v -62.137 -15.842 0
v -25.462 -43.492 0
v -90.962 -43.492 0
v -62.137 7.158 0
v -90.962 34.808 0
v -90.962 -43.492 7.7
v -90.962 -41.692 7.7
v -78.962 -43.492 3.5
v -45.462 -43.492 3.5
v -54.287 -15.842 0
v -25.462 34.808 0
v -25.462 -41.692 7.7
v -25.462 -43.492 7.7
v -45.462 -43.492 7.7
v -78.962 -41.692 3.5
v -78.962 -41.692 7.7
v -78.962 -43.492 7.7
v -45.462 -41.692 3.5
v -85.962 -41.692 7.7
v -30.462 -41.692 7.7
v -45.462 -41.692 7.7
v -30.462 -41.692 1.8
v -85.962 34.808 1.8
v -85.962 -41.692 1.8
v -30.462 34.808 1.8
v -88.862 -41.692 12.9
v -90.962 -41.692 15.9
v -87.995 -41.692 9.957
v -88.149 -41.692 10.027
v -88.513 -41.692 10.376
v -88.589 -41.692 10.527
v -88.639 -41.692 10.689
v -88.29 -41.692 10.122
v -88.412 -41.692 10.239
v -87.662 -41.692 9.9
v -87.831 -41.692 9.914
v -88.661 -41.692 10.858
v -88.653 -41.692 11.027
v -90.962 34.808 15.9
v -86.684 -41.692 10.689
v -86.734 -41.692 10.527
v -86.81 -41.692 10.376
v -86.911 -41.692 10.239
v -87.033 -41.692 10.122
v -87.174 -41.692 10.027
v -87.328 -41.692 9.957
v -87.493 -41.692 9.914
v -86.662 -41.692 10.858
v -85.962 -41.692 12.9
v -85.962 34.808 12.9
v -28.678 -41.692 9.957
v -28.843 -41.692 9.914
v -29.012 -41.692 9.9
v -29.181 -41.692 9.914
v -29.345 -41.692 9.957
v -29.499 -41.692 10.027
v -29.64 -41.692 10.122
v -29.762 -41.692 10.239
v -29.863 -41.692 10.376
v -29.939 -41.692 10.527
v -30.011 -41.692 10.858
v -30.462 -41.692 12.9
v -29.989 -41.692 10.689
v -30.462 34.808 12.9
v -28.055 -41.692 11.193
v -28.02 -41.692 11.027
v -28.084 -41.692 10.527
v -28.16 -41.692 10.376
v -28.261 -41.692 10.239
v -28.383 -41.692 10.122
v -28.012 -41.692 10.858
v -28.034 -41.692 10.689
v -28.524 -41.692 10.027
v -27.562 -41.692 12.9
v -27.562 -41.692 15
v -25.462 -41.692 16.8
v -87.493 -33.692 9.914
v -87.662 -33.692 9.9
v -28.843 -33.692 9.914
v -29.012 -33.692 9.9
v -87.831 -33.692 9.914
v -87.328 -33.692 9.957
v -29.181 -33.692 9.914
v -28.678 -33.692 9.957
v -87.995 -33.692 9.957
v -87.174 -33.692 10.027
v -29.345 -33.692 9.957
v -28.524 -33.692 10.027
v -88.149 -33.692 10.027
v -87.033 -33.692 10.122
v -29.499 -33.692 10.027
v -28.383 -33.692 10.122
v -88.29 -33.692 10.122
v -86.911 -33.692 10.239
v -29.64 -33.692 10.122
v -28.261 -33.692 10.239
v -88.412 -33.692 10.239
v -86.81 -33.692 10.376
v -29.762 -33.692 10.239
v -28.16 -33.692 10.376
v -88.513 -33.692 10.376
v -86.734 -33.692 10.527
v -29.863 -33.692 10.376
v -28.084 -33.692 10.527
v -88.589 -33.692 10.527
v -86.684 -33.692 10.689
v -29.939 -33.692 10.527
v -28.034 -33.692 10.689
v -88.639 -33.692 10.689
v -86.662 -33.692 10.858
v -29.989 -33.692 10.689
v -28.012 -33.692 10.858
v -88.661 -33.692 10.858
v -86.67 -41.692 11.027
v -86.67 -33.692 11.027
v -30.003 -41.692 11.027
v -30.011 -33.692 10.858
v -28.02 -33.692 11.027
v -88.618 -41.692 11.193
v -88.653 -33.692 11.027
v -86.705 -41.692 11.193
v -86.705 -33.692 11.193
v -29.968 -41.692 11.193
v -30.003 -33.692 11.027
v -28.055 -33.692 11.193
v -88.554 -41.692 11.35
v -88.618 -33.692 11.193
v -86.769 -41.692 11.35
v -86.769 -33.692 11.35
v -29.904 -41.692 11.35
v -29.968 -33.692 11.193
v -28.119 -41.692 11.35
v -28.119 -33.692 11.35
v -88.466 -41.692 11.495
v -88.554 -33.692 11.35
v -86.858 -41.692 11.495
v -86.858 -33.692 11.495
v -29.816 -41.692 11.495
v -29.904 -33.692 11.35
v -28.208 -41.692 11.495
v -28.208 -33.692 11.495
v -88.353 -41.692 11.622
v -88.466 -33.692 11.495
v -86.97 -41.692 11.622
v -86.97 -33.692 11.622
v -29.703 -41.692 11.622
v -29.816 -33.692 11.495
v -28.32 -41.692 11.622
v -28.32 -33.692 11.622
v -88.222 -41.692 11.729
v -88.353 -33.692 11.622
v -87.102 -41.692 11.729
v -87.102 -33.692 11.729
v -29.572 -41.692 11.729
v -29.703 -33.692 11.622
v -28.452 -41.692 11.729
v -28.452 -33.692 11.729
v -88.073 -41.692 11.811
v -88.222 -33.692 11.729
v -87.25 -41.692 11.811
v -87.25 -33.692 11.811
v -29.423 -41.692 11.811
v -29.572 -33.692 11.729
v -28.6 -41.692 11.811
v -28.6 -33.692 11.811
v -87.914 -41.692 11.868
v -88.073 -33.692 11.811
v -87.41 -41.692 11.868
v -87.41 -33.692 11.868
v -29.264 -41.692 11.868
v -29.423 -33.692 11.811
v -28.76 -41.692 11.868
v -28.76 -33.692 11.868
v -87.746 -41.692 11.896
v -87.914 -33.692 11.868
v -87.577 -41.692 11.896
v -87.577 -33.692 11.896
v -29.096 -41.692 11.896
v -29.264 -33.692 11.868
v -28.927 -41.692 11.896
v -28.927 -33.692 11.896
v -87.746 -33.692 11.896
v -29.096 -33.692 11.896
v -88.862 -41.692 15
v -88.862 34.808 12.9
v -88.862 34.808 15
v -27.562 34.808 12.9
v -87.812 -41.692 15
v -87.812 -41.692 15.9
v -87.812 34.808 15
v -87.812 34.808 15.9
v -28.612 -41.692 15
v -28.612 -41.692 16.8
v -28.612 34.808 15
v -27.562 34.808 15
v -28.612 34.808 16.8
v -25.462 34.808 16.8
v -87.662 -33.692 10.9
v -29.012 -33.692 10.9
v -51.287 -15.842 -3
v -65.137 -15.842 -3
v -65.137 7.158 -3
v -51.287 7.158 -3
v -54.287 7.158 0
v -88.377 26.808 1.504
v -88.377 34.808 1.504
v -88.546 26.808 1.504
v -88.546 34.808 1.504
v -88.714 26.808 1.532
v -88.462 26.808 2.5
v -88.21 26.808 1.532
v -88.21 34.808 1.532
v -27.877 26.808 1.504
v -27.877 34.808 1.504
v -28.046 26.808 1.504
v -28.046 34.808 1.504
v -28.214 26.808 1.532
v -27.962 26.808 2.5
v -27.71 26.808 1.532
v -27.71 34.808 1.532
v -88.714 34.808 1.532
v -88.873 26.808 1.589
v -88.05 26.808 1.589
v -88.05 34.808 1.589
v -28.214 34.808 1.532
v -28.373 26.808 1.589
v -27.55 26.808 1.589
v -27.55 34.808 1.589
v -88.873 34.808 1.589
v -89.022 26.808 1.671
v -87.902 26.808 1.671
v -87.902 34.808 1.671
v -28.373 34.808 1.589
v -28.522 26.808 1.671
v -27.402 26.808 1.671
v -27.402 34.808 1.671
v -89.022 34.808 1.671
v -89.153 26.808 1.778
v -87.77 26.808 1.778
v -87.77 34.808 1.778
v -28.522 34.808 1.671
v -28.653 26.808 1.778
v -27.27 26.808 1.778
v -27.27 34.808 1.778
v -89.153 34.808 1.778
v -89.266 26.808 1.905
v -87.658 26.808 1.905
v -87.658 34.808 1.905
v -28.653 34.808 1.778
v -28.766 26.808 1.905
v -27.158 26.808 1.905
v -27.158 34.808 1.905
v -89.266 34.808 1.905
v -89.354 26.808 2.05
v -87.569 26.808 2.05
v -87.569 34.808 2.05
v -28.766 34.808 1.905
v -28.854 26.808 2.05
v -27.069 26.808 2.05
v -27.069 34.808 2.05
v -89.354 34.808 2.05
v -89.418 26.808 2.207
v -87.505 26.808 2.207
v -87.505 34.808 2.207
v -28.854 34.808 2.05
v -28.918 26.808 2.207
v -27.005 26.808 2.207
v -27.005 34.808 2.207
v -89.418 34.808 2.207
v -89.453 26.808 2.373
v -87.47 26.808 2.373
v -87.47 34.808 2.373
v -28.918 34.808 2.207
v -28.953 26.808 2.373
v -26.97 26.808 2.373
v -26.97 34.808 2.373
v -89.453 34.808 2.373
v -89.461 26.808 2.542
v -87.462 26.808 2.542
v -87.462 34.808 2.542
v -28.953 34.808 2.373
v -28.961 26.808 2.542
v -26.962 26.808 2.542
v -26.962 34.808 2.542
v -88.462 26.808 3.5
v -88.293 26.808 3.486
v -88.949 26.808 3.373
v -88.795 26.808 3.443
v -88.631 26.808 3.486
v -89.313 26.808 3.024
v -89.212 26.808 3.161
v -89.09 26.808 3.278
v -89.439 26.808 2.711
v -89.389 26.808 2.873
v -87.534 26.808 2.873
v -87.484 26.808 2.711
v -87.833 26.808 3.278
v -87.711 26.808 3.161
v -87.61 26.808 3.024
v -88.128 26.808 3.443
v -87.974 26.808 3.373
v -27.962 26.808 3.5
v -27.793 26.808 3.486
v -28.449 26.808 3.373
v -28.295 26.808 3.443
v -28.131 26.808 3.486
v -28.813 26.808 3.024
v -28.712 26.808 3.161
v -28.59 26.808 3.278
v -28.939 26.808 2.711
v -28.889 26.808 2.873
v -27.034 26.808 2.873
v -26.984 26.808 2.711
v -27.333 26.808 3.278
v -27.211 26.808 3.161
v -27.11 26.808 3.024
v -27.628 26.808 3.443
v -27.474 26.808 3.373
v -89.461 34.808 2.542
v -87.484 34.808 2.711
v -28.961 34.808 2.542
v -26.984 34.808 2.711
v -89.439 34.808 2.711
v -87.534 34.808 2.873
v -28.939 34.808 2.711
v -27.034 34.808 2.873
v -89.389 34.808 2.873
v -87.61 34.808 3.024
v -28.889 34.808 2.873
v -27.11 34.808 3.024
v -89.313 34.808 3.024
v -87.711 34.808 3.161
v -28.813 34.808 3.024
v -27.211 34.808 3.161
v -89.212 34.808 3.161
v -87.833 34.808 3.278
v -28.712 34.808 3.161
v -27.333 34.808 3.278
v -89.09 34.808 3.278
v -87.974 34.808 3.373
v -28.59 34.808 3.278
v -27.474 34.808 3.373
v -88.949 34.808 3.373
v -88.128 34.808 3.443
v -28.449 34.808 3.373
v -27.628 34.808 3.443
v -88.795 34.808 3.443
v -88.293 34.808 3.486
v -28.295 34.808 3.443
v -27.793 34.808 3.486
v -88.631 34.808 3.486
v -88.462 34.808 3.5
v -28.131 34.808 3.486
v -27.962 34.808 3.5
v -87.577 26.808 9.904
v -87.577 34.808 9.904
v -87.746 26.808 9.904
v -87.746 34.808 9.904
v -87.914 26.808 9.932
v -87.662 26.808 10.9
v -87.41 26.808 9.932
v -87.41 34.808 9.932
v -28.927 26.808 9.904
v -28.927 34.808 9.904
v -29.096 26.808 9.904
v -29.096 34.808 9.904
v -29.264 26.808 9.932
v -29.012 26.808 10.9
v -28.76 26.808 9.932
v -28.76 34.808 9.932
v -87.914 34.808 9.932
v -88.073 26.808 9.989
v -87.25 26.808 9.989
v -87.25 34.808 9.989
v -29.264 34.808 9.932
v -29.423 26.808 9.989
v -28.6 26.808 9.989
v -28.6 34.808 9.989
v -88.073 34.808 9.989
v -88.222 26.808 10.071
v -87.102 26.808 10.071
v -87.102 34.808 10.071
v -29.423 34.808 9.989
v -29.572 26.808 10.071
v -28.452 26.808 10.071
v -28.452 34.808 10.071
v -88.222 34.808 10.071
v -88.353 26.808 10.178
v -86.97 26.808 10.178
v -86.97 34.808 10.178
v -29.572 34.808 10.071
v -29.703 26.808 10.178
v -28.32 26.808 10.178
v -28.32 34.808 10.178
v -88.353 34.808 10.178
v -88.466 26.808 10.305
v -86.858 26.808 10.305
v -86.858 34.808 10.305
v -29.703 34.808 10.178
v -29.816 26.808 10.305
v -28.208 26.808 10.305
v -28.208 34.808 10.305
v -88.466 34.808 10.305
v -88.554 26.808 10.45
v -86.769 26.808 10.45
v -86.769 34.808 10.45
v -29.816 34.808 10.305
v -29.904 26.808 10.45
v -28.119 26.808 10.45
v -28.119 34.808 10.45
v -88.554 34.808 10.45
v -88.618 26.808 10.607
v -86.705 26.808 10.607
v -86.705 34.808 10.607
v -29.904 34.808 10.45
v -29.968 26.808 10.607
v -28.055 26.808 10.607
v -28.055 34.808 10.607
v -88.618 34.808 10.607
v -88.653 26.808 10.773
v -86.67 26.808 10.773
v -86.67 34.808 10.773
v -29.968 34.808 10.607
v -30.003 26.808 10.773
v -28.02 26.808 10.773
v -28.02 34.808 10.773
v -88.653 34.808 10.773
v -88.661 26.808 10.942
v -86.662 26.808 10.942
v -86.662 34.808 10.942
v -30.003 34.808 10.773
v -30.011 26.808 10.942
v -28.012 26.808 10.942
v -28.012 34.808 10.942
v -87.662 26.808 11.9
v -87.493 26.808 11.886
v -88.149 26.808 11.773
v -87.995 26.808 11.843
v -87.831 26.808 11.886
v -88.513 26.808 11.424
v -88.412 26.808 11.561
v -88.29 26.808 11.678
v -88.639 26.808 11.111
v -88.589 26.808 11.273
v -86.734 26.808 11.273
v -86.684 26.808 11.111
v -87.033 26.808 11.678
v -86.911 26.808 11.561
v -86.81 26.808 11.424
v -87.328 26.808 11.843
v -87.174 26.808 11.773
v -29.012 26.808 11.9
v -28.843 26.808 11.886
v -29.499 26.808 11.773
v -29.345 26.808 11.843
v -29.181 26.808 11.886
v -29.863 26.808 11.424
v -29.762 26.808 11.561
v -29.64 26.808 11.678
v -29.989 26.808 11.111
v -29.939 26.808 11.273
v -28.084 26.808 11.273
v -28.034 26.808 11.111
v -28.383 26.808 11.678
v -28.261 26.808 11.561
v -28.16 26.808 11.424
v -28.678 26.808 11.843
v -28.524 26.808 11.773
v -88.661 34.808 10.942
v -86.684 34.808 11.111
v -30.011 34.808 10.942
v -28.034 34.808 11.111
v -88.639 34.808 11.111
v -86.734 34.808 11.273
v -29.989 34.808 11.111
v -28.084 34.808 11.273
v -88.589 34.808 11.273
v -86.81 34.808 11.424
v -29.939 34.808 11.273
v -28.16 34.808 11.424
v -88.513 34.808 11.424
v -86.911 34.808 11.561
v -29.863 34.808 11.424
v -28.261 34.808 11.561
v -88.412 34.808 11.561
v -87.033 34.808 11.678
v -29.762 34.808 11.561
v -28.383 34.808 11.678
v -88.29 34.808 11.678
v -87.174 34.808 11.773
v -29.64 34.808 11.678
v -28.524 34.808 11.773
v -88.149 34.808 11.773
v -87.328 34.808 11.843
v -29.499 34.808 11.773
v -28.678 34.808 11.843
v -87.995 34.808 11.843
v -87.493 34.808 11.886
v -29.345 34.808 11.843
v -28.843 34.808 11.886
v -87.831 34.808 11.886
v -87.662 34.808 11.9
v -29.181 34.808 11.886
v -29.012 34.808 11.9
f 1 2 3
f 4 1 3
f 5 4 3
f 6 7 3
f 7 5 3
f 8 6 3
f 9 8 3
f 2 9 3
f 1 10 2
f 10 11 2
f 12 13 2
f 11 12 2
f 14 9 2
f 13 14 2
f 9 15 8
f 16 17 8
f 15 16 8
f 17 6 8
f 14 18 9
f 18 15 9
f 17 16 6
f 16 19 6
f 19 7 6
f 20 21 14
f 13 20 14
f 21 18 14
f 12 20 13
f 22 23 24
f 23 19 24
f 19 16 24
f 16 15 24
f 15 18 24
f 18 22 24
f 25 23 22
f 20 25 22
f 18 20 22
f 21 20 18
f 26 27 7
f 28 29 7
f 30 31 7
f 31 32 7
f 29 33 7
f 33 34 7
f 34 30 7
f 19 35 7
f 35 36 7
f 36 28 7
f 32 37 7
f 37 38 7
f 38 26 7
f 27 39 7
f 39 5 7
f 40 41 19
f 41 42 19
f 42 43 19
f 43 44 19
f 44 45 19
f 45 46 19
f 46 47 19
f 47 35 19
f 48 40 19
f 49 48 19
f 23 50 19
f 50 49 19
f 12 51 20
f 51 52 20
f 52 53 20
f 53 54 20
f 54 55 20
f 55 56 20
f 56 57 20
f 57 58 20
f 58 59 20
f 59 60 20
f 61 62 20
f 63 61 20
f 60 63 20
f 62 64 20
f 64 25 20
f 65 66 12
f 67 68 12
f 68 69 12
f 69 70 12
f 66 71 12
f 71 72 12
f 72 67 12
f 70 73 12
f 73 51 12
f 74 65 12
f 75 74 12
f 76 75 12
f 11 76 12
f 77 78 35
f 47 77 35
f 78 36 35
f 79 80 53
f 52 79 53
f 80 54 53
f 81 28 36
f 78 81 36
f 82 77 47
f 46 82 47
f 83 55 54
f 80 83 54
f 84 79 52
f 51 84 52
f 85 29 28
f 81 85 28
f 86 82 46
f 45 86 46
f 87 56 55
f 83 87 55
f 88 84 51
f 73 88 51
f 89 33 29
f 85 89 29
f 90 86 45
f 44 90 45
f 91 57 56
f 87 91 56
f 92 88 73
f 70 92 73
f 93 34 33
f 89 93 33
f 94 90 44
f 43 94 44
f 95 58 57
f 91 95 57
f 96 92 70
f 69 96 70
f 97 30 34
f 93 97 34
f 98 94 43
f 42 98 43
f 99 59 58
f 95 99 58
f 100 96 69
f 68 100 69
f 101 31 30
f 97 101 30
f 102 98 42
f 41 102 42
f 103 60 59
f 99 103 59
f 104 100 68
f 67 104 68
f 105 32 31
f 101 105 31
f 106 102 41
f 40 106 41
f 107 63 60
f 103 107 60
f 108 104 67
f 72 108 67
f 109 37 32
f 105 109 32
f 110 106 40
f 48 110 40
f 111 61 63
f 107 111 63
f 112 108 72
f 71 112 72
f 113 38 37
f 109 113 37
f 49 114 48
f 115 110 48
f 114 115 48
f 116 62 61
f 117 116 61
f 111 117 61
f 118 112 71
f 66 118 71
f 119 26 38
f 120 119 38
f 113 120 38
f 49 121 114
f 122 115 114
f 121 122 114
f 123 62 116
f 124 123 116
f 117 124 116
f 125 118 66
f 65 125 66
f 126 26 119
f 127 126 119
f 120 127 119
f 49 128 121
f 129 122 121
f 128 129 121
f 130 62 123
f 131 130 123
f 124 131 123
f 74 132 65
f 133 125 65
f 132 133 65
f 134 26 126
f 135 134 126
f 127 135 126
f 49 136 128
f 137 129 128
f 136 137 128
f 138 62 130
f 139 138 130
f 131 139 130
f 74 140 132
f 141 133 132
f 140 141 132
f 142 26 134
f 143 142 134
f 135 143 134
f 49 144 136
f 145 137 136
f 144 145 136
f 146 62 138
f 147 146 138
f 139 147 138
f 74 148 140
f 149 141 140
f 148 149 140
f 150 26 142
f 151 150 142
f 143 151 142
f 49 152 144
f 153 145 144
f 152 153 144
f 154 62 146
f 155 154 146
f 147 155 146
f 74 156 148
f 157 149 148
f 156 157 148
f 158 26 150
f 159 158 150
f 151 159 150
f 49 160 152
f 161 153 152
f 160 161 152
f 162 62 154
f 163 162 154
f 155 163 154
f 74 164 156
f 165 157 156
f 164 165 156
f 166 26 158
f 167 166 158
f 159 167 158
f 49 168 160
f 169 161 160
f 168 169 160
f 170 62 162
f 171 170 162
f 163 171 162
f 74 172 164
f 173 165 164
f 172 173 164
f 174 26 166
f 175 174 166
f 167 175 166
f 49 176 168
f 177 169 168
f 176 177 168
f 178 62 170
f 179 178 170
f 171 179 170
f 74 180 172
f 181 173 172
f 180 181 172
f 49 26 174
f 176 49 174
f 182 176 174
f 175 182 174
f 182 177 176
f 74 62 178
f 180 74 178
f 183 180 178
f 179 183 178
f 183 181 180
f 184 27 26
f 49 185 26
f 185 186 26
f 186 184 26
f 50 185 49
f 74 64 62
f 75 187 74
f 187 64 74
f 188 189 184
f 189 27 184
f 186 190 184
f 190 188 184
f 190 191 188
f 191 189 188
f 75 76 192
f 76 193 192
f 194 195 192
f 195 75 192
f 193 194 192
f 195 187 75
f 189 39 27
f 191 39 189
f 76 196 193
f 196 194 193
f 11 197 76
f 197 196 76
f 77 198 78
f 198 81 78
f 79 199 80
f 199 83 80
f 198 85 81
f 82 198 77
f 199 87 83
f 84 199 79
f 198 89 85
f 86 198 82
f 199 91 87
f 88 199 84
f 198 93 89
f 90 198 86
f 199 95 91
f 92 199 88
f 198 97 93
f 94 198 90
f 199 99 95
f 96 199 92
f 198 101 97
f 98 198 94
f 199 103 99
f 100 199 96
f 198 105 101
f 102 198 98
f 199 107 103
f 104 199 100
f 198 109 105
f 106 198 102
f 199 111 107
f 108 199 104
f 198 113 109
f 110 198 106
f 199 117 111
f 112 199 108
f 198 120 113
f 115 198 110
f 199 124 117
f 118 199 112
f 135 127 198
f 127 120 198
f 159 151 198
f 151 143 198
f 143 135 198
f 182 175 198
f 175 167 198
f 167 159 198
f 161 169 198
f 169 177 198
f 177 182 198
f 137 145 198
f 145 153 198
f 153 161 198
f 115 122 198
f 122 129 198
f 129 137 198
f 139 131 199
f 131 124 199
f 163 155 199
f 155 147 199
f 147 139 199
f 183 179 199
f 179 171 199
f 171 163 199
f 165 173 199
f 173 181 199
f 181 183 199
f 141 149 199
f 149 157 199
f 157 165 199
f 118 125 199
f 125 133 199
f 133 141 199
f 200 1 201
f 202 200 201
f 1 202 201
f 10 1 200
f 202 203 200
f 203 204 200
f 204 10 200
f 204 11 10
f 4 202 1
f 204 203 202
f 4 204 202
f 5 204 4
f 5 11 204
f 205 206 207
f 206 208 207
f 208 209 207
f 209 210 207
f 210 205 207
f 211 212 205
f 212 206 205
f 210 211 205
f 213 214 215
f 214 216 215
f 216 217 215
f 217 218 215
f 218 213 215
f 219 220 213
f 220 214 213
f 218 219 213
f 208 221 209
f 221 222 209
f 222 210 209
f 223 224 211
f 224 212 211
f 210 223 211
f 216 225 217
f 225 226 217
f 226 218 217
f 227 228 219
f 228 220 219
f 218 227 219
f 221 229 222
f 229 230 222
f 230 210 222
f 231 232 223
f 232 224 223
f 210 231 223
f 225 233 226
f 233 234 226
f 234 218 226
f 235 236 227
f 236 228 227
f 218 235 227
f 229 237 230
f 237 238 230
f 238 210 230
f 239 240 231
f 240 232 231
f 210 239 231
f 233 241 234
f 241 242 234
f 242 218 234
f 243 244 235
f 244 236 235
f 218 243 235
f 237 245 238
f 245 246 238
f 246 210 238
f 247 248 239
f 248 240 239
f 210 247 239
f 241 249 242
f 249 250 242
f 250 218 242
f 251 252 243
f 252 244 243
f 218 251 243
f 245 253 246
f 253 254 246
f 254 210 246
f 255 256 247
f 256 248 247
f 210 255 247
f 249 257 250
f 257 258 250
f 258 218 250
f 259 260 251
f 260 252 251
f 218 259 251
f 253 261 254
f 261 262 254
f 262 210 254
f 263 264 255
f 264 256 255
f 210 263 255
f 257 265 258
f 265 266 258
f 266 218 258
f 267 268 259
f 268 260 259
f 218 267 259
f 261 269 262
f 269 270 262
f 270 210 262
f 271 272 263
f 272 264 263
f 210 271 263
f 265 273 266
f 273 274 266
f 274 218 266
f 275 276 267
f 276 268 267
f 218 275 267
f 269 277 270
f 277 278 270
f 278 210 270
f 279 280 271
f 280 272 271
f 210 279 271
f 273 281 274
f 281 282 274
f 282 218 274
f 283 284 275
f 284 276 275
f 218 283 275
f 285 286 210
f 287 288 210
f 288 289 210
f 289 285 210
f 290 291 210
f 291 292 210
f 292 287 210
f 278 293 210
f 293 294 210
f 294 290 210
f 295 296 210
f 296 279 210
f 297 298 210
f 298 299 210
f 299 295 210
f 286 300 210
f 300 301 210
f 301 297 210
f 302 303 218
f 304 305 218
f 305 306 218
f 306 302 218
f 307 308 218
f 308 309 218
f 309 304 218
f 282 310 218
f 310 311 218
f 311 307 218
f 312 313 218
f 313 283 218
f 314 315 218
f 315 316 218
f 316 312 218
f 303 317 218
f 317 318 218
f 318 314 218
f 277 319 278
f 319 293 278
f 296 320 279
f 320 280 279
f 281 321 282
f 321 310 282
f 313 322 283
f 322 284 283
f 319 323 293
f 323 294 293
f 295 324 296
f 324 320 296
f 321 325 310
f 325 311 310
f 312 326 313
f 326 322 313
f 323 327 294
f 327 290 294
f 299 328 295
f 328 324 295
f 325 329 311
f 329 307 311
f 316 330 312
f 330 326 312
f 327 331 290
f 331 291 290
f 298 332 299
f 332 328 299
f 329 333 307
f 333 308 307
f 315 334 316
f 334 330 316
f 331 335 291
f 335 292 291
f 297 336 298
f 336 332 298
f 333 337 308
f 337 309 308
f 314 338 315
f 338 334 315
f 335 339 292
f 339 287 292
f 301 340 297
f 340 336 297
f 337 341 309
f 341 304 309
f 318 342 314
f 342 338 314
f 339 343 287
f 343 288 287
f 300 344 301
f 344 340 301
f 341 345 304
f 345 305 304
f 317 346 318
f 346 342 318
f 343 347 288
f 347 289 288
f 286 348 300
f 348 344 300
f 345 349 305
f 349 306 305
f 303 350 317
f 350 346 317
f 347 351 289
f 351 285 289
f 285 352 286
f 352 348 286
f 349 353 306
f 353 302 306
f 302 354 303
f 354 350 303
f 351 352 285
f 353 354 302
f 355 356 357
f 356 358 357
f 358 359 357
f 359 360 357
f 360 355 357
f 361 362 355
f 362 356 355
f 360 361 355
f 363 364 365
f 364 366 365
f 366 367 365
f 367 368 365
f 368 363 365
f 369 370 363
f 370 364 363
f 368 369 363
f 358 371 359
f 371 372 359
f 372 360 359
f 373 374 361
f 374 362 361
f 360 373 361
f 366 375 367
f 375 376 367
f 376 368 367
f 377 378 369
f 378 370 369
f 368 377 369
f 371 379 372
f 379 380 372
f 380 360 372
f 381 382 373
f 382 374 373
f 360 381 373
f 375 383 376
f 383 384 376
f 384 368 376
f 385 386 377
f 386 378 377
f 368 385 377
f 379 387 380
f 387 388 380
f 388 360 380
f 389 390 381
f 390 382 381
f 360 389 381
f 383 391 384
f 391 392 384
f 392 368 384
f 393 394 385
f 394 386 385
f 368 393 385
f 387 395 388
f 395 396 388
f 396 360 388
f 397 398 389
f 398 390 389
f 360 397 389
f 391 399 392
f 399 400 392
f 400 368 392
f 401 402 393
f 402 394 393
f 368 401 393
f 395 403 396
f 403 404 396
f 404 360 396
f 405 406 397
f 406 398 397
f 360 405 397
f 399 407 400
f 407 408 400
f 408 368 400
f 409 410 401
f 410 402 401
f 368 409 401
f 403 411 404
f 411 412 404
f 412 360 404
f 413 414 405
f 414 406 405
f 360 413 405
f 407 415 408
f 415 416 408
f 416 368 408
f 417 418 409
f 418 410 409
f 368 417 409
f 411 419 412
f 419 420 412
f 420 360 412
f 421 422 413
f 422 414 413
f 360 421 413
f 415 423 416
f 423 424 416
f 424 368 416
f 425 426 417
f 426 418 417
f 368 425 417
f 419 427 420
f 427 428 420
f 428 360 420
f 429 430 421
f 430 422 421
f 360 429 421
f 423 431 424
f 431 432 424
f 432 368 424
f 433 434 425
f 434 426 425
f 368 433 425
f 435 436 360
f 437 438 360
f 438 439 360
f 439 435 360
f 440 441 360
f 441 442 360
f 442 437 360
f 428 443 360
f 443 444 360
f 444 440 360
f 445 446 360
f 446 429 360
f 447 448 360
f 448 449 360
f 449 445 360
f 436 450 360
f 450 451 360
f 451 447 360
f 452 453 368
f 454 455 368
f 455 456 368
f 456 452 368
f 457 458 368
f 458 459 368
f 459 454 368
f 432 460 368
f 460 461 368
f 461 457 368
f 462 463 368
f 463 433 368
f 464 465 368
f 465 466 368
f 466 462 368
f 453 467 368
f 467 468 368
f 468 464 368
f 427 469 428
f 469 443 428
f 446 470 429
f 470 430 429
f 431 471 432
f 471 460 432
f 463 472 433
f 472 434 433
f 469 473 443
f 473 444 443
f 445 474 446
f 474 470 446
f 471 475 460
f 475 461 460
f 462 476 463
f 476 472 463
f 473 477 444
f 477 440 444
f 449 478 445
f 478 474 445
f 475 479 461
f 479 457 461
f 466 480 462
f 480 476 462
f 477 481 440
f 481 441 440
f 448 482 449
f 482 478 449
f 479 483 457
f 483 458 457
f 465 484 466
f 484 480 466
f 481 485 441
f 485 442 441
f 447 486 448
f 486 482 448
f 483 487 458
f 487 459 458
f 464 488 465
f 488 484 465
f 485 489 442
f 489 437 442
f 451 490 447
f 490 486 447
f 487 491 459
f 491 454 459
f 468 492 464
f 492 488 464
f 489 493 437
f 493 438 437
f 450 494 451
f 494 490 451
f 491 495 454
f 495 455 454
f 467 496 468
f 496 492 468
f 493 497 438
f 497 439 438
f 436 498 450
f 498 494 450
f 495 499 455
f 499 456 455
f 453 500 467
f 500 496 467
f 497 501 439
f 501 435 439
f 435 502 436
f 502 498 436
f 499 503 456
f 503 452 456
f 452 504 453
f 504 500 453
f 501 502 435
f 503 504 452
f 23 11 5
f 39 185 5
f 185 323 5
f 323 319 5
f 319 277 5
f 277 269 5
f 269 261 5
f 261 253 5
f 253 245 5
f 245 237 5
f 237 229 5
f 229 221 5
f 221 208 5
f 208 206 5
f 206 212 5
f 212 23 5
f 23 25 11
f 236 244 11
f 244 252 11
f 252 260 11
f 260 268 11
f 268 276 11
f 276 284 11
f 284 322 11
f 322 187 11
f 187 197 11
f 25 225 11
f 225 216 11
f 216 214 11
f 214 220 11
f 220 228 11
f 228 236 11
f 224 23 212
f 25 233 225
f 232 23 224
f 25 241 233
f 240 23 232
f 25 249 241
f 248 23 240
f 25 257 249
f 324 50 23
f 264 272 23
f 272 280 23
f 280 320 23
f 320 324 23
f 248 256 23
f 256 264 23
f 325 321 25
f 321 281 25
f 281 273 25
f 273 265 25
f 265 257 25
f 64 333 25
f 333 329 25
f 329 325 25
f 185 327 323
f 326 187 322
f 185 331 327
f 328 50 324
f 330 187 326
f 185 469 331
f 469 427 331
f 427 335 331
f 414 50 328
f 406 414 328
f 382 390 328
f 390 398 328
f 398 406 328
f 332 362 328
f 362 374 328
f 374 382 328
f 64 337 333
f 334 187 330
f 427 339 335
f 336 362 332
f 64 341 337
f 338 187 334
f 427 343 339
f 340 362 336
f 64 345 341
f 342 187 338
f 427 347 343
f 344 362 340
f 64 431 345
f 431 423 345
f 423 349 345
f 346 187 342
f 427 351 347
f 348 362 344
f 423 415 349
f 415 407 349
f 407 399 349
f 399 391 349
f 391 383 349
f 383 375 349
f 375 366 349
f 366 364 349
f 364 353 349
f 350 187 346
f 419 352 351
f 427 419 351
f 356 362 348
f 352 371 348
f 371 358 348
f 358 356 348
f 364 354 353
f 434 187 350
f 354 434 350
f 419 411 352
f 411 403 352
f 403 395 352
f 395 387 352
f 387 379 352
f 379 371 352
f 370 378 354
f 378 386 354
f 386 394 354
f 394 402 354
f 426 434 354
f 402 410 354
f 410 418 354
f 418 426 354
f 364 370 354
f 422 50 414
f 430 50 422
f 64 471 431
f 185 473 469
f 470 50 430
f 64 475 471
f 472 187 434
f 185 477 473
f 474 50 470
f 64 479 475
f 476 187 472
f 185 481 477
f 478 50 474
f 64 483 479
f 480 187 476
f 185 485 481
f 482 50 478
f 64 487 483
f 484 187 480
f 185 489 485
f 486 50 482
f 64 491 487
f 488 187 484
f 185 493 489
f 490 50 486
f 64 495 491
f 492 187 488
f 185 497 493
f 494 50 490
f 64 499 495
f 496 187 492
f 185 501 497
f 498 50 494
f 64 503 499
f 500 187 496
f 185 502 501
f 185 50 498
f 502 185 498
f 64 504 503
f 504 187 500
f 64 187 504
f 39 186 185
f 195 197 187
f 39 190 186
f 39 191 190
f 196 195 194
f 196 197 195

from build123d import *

# Parameters (mm, degrees)
CROQUIS1_W              = 65.5
CROQUIS1_H              = 76.5
SALIENTE_EXTRUIR1_DEPTH = 1.8
CROQUIS2_W              = 5
CROQUIS2_H              = 76.5
SALIENTE_EXTRUIR2_DEPTH = 15
CORTAR_EXTRUIR1_DEPTH   = 76.5
SALIENTE_EXTRUIR4_DEPTH = 1.8
CROQUIS7_W              = 13.85
CROQUIS7_H              = 23
SALIENTE_EXTRUIR5_DEPTH = 3
CORTAR_EXTRUIR5_DEPTH   = 23
CROQUIS10_R             = 1
CORTAR_EXTRUIR6_DEPTH   = 8
CORTAR_EXTRUIR7_START   = -8
CROQUIS11_R             = 1
CORTAR_EXTRUIR7_DEPTH   = 8
CROQUIS12_R             = 1
CORTAR_EXTRUIR8_DEPTH   = 8


with BuildPart() as part:
    # Croquis1 → Saliente-Extruir1 (new body)
    with BuildSketch(Plane.XY):
        with Locations((-58.211538462, -3.442307692)):
            Rectangle(CROQUIS1_W, CROQUIS1_H)
    extrude(amount=SALIENTE_EXTRUIR1_DEPTH)

    # Croquis2 → Saliente-Extruir2 (add)
    with BuildSketch(Plane.XY.offset(1.8)):
        with Locations((-88.461538462, -3.442307692)):
            Rectangle(CROQUIS2_W, CROQUIS2_H)
        with Locations((-27.961538462, -3.442307692)):
            Rectangle(CROQUIS2_W, CROQUIS2_H)
    extrude(amount=SALIENTE_EXTRUIR2_DEPTH)

    # Croquis3 → Cortar-Extruir1 (cut)
    with BuildSketch(Plane.XZ.offset(41.692307692)):
        Polygon((-89.111538462, 15.9), (-87.811538462, 15.9), (-87.811538462, 15), (-88.461538462, 15), (-88.861538462, 15), (-88.861538462, 12.9), (-85.961538462, 12.9), (-85.961538462, 15), (-85.961538462, 16.8), (-89.111538462, 16.8), (-90.961538462, 16.8), (-90.961538462, 15.9), align=None)
        Polygon((-30.461538462, 15), (-30.461538462, 12.9), (-27.561538462, 12.9), (-27.561538462, 15), (-28.611538462, 15), (-28.611538462, 15.9), (-28.611538462, 16.8), (-30.461538462, 16.8), align=None)
    extrude(amount=-CORTAR_EXTRUIR1_DEPTH, mode=Mode.SUBTRACT)

    # Croquis6 → Saliente-Extruir4 (add)
    with BuildSketch(Plane.XZ.offset(41.692307692)):
        Polygon((-85.961538462, 7.7), (-78.961538462, 7.7), (-78.961538462, 3.5), (-45.461538462, 3.5), (-45.461538462, 7.7), (-30.461538462, 7.7), (-25.461538462, 7.7), (-25.461538462, 0), (-90.961538462, 0), (-90.961538462, 7.7), align=None)
    extrude(amount=SALIENTE_EXTRUIR4_DEPTH)

    # Croquis7 → Saliente-Extruir5 (add)
    with BuildSketch(Plane(origin=(0, 0, 0), x_dir=(-1, 0, 0), z_dir=(0, 0, -1))):
        with Locations((58.211538462, -4.342307692)):
            Rectangle(CROQUIS7_W, CROQUIS7_H)
    extrude(amount=SALIENTE_EXTRUIR5_DEPTH)

    # Croquis9 → Cortar-Extruir5 (cut)
    with BuildSketch(Plane.XZ.offset(15.842307692)):
        Polygon((-51.286538462, -3), (-54.286538462, 0), (-51.286538462, 0), align=None)
        Polygon((-65.136538462, -3), (-62.136538462, 0), (-65.136538462, 0), align=None)
    extrude(amount=-CORTAR_EXTRUIR5_DEPTH, mode=Mode.SUBTRACT)

    # Croquis10 → Cortar-Extruir6 (cut)
    with BuildSketch(Plane.XZ.offset(41.692307692)):
        with Locations(Location((-87.661538462, 10.9, 0), (0, 0, 270))):
            Circle(CROQUIS10_R)
        with Locations(Location((-29.011538462, 10.9, 0), (0, 0, 270))):
            Circle(CROQUIS10_R)
    extrude(amount=-CORTAR_EXTRUIR6_DEPTH, mode=Mode.SUBTRACT)

    # Croquis11 → Cortar-Extruir7 (cut)
    with BuildSketch(Plane(origin=(0, 34.807692308, 0), x_dir=(1, 0, 0), z_dir=(0, 1, 0)).offset(CORTAR_EXTRUIR7_START)):
        with Locations(Location((-29.011538462, -10.9, 0), (0, 0, 90))):
            Circle(CROQUIS11_R)
        with Locations(Location((-87.661538462, -10.9, 0), (0, 0, 90))):
            Circle(CROQUIS11_R)
    extrude(amount=CORTAR_EXTRUIR7_DEPTH, mode=Mode.SUBTRACT)

    # Croquis12 → Cortar-Extruir8 (cut)
    with BuildSketch(Plane(origin=(0, 34.807692308, 0), x_dir=(1, 0, 0), z_dir=(0, 1, 0))):
        with Locations(Location((-27.961538462, -2.5, 0), (0, 0, 270))):
            Circle(CROQUIS12_R)
        with Locations(Location((-88.461538462, -2.5, 0), (0, 0, 270))):
            Circle(CROQUIS12_R)
    extrude(amount=-CORTAR_EXTRUIR8_DEPTH, mode=Mode.SUBTRACT)


solid = part.part
